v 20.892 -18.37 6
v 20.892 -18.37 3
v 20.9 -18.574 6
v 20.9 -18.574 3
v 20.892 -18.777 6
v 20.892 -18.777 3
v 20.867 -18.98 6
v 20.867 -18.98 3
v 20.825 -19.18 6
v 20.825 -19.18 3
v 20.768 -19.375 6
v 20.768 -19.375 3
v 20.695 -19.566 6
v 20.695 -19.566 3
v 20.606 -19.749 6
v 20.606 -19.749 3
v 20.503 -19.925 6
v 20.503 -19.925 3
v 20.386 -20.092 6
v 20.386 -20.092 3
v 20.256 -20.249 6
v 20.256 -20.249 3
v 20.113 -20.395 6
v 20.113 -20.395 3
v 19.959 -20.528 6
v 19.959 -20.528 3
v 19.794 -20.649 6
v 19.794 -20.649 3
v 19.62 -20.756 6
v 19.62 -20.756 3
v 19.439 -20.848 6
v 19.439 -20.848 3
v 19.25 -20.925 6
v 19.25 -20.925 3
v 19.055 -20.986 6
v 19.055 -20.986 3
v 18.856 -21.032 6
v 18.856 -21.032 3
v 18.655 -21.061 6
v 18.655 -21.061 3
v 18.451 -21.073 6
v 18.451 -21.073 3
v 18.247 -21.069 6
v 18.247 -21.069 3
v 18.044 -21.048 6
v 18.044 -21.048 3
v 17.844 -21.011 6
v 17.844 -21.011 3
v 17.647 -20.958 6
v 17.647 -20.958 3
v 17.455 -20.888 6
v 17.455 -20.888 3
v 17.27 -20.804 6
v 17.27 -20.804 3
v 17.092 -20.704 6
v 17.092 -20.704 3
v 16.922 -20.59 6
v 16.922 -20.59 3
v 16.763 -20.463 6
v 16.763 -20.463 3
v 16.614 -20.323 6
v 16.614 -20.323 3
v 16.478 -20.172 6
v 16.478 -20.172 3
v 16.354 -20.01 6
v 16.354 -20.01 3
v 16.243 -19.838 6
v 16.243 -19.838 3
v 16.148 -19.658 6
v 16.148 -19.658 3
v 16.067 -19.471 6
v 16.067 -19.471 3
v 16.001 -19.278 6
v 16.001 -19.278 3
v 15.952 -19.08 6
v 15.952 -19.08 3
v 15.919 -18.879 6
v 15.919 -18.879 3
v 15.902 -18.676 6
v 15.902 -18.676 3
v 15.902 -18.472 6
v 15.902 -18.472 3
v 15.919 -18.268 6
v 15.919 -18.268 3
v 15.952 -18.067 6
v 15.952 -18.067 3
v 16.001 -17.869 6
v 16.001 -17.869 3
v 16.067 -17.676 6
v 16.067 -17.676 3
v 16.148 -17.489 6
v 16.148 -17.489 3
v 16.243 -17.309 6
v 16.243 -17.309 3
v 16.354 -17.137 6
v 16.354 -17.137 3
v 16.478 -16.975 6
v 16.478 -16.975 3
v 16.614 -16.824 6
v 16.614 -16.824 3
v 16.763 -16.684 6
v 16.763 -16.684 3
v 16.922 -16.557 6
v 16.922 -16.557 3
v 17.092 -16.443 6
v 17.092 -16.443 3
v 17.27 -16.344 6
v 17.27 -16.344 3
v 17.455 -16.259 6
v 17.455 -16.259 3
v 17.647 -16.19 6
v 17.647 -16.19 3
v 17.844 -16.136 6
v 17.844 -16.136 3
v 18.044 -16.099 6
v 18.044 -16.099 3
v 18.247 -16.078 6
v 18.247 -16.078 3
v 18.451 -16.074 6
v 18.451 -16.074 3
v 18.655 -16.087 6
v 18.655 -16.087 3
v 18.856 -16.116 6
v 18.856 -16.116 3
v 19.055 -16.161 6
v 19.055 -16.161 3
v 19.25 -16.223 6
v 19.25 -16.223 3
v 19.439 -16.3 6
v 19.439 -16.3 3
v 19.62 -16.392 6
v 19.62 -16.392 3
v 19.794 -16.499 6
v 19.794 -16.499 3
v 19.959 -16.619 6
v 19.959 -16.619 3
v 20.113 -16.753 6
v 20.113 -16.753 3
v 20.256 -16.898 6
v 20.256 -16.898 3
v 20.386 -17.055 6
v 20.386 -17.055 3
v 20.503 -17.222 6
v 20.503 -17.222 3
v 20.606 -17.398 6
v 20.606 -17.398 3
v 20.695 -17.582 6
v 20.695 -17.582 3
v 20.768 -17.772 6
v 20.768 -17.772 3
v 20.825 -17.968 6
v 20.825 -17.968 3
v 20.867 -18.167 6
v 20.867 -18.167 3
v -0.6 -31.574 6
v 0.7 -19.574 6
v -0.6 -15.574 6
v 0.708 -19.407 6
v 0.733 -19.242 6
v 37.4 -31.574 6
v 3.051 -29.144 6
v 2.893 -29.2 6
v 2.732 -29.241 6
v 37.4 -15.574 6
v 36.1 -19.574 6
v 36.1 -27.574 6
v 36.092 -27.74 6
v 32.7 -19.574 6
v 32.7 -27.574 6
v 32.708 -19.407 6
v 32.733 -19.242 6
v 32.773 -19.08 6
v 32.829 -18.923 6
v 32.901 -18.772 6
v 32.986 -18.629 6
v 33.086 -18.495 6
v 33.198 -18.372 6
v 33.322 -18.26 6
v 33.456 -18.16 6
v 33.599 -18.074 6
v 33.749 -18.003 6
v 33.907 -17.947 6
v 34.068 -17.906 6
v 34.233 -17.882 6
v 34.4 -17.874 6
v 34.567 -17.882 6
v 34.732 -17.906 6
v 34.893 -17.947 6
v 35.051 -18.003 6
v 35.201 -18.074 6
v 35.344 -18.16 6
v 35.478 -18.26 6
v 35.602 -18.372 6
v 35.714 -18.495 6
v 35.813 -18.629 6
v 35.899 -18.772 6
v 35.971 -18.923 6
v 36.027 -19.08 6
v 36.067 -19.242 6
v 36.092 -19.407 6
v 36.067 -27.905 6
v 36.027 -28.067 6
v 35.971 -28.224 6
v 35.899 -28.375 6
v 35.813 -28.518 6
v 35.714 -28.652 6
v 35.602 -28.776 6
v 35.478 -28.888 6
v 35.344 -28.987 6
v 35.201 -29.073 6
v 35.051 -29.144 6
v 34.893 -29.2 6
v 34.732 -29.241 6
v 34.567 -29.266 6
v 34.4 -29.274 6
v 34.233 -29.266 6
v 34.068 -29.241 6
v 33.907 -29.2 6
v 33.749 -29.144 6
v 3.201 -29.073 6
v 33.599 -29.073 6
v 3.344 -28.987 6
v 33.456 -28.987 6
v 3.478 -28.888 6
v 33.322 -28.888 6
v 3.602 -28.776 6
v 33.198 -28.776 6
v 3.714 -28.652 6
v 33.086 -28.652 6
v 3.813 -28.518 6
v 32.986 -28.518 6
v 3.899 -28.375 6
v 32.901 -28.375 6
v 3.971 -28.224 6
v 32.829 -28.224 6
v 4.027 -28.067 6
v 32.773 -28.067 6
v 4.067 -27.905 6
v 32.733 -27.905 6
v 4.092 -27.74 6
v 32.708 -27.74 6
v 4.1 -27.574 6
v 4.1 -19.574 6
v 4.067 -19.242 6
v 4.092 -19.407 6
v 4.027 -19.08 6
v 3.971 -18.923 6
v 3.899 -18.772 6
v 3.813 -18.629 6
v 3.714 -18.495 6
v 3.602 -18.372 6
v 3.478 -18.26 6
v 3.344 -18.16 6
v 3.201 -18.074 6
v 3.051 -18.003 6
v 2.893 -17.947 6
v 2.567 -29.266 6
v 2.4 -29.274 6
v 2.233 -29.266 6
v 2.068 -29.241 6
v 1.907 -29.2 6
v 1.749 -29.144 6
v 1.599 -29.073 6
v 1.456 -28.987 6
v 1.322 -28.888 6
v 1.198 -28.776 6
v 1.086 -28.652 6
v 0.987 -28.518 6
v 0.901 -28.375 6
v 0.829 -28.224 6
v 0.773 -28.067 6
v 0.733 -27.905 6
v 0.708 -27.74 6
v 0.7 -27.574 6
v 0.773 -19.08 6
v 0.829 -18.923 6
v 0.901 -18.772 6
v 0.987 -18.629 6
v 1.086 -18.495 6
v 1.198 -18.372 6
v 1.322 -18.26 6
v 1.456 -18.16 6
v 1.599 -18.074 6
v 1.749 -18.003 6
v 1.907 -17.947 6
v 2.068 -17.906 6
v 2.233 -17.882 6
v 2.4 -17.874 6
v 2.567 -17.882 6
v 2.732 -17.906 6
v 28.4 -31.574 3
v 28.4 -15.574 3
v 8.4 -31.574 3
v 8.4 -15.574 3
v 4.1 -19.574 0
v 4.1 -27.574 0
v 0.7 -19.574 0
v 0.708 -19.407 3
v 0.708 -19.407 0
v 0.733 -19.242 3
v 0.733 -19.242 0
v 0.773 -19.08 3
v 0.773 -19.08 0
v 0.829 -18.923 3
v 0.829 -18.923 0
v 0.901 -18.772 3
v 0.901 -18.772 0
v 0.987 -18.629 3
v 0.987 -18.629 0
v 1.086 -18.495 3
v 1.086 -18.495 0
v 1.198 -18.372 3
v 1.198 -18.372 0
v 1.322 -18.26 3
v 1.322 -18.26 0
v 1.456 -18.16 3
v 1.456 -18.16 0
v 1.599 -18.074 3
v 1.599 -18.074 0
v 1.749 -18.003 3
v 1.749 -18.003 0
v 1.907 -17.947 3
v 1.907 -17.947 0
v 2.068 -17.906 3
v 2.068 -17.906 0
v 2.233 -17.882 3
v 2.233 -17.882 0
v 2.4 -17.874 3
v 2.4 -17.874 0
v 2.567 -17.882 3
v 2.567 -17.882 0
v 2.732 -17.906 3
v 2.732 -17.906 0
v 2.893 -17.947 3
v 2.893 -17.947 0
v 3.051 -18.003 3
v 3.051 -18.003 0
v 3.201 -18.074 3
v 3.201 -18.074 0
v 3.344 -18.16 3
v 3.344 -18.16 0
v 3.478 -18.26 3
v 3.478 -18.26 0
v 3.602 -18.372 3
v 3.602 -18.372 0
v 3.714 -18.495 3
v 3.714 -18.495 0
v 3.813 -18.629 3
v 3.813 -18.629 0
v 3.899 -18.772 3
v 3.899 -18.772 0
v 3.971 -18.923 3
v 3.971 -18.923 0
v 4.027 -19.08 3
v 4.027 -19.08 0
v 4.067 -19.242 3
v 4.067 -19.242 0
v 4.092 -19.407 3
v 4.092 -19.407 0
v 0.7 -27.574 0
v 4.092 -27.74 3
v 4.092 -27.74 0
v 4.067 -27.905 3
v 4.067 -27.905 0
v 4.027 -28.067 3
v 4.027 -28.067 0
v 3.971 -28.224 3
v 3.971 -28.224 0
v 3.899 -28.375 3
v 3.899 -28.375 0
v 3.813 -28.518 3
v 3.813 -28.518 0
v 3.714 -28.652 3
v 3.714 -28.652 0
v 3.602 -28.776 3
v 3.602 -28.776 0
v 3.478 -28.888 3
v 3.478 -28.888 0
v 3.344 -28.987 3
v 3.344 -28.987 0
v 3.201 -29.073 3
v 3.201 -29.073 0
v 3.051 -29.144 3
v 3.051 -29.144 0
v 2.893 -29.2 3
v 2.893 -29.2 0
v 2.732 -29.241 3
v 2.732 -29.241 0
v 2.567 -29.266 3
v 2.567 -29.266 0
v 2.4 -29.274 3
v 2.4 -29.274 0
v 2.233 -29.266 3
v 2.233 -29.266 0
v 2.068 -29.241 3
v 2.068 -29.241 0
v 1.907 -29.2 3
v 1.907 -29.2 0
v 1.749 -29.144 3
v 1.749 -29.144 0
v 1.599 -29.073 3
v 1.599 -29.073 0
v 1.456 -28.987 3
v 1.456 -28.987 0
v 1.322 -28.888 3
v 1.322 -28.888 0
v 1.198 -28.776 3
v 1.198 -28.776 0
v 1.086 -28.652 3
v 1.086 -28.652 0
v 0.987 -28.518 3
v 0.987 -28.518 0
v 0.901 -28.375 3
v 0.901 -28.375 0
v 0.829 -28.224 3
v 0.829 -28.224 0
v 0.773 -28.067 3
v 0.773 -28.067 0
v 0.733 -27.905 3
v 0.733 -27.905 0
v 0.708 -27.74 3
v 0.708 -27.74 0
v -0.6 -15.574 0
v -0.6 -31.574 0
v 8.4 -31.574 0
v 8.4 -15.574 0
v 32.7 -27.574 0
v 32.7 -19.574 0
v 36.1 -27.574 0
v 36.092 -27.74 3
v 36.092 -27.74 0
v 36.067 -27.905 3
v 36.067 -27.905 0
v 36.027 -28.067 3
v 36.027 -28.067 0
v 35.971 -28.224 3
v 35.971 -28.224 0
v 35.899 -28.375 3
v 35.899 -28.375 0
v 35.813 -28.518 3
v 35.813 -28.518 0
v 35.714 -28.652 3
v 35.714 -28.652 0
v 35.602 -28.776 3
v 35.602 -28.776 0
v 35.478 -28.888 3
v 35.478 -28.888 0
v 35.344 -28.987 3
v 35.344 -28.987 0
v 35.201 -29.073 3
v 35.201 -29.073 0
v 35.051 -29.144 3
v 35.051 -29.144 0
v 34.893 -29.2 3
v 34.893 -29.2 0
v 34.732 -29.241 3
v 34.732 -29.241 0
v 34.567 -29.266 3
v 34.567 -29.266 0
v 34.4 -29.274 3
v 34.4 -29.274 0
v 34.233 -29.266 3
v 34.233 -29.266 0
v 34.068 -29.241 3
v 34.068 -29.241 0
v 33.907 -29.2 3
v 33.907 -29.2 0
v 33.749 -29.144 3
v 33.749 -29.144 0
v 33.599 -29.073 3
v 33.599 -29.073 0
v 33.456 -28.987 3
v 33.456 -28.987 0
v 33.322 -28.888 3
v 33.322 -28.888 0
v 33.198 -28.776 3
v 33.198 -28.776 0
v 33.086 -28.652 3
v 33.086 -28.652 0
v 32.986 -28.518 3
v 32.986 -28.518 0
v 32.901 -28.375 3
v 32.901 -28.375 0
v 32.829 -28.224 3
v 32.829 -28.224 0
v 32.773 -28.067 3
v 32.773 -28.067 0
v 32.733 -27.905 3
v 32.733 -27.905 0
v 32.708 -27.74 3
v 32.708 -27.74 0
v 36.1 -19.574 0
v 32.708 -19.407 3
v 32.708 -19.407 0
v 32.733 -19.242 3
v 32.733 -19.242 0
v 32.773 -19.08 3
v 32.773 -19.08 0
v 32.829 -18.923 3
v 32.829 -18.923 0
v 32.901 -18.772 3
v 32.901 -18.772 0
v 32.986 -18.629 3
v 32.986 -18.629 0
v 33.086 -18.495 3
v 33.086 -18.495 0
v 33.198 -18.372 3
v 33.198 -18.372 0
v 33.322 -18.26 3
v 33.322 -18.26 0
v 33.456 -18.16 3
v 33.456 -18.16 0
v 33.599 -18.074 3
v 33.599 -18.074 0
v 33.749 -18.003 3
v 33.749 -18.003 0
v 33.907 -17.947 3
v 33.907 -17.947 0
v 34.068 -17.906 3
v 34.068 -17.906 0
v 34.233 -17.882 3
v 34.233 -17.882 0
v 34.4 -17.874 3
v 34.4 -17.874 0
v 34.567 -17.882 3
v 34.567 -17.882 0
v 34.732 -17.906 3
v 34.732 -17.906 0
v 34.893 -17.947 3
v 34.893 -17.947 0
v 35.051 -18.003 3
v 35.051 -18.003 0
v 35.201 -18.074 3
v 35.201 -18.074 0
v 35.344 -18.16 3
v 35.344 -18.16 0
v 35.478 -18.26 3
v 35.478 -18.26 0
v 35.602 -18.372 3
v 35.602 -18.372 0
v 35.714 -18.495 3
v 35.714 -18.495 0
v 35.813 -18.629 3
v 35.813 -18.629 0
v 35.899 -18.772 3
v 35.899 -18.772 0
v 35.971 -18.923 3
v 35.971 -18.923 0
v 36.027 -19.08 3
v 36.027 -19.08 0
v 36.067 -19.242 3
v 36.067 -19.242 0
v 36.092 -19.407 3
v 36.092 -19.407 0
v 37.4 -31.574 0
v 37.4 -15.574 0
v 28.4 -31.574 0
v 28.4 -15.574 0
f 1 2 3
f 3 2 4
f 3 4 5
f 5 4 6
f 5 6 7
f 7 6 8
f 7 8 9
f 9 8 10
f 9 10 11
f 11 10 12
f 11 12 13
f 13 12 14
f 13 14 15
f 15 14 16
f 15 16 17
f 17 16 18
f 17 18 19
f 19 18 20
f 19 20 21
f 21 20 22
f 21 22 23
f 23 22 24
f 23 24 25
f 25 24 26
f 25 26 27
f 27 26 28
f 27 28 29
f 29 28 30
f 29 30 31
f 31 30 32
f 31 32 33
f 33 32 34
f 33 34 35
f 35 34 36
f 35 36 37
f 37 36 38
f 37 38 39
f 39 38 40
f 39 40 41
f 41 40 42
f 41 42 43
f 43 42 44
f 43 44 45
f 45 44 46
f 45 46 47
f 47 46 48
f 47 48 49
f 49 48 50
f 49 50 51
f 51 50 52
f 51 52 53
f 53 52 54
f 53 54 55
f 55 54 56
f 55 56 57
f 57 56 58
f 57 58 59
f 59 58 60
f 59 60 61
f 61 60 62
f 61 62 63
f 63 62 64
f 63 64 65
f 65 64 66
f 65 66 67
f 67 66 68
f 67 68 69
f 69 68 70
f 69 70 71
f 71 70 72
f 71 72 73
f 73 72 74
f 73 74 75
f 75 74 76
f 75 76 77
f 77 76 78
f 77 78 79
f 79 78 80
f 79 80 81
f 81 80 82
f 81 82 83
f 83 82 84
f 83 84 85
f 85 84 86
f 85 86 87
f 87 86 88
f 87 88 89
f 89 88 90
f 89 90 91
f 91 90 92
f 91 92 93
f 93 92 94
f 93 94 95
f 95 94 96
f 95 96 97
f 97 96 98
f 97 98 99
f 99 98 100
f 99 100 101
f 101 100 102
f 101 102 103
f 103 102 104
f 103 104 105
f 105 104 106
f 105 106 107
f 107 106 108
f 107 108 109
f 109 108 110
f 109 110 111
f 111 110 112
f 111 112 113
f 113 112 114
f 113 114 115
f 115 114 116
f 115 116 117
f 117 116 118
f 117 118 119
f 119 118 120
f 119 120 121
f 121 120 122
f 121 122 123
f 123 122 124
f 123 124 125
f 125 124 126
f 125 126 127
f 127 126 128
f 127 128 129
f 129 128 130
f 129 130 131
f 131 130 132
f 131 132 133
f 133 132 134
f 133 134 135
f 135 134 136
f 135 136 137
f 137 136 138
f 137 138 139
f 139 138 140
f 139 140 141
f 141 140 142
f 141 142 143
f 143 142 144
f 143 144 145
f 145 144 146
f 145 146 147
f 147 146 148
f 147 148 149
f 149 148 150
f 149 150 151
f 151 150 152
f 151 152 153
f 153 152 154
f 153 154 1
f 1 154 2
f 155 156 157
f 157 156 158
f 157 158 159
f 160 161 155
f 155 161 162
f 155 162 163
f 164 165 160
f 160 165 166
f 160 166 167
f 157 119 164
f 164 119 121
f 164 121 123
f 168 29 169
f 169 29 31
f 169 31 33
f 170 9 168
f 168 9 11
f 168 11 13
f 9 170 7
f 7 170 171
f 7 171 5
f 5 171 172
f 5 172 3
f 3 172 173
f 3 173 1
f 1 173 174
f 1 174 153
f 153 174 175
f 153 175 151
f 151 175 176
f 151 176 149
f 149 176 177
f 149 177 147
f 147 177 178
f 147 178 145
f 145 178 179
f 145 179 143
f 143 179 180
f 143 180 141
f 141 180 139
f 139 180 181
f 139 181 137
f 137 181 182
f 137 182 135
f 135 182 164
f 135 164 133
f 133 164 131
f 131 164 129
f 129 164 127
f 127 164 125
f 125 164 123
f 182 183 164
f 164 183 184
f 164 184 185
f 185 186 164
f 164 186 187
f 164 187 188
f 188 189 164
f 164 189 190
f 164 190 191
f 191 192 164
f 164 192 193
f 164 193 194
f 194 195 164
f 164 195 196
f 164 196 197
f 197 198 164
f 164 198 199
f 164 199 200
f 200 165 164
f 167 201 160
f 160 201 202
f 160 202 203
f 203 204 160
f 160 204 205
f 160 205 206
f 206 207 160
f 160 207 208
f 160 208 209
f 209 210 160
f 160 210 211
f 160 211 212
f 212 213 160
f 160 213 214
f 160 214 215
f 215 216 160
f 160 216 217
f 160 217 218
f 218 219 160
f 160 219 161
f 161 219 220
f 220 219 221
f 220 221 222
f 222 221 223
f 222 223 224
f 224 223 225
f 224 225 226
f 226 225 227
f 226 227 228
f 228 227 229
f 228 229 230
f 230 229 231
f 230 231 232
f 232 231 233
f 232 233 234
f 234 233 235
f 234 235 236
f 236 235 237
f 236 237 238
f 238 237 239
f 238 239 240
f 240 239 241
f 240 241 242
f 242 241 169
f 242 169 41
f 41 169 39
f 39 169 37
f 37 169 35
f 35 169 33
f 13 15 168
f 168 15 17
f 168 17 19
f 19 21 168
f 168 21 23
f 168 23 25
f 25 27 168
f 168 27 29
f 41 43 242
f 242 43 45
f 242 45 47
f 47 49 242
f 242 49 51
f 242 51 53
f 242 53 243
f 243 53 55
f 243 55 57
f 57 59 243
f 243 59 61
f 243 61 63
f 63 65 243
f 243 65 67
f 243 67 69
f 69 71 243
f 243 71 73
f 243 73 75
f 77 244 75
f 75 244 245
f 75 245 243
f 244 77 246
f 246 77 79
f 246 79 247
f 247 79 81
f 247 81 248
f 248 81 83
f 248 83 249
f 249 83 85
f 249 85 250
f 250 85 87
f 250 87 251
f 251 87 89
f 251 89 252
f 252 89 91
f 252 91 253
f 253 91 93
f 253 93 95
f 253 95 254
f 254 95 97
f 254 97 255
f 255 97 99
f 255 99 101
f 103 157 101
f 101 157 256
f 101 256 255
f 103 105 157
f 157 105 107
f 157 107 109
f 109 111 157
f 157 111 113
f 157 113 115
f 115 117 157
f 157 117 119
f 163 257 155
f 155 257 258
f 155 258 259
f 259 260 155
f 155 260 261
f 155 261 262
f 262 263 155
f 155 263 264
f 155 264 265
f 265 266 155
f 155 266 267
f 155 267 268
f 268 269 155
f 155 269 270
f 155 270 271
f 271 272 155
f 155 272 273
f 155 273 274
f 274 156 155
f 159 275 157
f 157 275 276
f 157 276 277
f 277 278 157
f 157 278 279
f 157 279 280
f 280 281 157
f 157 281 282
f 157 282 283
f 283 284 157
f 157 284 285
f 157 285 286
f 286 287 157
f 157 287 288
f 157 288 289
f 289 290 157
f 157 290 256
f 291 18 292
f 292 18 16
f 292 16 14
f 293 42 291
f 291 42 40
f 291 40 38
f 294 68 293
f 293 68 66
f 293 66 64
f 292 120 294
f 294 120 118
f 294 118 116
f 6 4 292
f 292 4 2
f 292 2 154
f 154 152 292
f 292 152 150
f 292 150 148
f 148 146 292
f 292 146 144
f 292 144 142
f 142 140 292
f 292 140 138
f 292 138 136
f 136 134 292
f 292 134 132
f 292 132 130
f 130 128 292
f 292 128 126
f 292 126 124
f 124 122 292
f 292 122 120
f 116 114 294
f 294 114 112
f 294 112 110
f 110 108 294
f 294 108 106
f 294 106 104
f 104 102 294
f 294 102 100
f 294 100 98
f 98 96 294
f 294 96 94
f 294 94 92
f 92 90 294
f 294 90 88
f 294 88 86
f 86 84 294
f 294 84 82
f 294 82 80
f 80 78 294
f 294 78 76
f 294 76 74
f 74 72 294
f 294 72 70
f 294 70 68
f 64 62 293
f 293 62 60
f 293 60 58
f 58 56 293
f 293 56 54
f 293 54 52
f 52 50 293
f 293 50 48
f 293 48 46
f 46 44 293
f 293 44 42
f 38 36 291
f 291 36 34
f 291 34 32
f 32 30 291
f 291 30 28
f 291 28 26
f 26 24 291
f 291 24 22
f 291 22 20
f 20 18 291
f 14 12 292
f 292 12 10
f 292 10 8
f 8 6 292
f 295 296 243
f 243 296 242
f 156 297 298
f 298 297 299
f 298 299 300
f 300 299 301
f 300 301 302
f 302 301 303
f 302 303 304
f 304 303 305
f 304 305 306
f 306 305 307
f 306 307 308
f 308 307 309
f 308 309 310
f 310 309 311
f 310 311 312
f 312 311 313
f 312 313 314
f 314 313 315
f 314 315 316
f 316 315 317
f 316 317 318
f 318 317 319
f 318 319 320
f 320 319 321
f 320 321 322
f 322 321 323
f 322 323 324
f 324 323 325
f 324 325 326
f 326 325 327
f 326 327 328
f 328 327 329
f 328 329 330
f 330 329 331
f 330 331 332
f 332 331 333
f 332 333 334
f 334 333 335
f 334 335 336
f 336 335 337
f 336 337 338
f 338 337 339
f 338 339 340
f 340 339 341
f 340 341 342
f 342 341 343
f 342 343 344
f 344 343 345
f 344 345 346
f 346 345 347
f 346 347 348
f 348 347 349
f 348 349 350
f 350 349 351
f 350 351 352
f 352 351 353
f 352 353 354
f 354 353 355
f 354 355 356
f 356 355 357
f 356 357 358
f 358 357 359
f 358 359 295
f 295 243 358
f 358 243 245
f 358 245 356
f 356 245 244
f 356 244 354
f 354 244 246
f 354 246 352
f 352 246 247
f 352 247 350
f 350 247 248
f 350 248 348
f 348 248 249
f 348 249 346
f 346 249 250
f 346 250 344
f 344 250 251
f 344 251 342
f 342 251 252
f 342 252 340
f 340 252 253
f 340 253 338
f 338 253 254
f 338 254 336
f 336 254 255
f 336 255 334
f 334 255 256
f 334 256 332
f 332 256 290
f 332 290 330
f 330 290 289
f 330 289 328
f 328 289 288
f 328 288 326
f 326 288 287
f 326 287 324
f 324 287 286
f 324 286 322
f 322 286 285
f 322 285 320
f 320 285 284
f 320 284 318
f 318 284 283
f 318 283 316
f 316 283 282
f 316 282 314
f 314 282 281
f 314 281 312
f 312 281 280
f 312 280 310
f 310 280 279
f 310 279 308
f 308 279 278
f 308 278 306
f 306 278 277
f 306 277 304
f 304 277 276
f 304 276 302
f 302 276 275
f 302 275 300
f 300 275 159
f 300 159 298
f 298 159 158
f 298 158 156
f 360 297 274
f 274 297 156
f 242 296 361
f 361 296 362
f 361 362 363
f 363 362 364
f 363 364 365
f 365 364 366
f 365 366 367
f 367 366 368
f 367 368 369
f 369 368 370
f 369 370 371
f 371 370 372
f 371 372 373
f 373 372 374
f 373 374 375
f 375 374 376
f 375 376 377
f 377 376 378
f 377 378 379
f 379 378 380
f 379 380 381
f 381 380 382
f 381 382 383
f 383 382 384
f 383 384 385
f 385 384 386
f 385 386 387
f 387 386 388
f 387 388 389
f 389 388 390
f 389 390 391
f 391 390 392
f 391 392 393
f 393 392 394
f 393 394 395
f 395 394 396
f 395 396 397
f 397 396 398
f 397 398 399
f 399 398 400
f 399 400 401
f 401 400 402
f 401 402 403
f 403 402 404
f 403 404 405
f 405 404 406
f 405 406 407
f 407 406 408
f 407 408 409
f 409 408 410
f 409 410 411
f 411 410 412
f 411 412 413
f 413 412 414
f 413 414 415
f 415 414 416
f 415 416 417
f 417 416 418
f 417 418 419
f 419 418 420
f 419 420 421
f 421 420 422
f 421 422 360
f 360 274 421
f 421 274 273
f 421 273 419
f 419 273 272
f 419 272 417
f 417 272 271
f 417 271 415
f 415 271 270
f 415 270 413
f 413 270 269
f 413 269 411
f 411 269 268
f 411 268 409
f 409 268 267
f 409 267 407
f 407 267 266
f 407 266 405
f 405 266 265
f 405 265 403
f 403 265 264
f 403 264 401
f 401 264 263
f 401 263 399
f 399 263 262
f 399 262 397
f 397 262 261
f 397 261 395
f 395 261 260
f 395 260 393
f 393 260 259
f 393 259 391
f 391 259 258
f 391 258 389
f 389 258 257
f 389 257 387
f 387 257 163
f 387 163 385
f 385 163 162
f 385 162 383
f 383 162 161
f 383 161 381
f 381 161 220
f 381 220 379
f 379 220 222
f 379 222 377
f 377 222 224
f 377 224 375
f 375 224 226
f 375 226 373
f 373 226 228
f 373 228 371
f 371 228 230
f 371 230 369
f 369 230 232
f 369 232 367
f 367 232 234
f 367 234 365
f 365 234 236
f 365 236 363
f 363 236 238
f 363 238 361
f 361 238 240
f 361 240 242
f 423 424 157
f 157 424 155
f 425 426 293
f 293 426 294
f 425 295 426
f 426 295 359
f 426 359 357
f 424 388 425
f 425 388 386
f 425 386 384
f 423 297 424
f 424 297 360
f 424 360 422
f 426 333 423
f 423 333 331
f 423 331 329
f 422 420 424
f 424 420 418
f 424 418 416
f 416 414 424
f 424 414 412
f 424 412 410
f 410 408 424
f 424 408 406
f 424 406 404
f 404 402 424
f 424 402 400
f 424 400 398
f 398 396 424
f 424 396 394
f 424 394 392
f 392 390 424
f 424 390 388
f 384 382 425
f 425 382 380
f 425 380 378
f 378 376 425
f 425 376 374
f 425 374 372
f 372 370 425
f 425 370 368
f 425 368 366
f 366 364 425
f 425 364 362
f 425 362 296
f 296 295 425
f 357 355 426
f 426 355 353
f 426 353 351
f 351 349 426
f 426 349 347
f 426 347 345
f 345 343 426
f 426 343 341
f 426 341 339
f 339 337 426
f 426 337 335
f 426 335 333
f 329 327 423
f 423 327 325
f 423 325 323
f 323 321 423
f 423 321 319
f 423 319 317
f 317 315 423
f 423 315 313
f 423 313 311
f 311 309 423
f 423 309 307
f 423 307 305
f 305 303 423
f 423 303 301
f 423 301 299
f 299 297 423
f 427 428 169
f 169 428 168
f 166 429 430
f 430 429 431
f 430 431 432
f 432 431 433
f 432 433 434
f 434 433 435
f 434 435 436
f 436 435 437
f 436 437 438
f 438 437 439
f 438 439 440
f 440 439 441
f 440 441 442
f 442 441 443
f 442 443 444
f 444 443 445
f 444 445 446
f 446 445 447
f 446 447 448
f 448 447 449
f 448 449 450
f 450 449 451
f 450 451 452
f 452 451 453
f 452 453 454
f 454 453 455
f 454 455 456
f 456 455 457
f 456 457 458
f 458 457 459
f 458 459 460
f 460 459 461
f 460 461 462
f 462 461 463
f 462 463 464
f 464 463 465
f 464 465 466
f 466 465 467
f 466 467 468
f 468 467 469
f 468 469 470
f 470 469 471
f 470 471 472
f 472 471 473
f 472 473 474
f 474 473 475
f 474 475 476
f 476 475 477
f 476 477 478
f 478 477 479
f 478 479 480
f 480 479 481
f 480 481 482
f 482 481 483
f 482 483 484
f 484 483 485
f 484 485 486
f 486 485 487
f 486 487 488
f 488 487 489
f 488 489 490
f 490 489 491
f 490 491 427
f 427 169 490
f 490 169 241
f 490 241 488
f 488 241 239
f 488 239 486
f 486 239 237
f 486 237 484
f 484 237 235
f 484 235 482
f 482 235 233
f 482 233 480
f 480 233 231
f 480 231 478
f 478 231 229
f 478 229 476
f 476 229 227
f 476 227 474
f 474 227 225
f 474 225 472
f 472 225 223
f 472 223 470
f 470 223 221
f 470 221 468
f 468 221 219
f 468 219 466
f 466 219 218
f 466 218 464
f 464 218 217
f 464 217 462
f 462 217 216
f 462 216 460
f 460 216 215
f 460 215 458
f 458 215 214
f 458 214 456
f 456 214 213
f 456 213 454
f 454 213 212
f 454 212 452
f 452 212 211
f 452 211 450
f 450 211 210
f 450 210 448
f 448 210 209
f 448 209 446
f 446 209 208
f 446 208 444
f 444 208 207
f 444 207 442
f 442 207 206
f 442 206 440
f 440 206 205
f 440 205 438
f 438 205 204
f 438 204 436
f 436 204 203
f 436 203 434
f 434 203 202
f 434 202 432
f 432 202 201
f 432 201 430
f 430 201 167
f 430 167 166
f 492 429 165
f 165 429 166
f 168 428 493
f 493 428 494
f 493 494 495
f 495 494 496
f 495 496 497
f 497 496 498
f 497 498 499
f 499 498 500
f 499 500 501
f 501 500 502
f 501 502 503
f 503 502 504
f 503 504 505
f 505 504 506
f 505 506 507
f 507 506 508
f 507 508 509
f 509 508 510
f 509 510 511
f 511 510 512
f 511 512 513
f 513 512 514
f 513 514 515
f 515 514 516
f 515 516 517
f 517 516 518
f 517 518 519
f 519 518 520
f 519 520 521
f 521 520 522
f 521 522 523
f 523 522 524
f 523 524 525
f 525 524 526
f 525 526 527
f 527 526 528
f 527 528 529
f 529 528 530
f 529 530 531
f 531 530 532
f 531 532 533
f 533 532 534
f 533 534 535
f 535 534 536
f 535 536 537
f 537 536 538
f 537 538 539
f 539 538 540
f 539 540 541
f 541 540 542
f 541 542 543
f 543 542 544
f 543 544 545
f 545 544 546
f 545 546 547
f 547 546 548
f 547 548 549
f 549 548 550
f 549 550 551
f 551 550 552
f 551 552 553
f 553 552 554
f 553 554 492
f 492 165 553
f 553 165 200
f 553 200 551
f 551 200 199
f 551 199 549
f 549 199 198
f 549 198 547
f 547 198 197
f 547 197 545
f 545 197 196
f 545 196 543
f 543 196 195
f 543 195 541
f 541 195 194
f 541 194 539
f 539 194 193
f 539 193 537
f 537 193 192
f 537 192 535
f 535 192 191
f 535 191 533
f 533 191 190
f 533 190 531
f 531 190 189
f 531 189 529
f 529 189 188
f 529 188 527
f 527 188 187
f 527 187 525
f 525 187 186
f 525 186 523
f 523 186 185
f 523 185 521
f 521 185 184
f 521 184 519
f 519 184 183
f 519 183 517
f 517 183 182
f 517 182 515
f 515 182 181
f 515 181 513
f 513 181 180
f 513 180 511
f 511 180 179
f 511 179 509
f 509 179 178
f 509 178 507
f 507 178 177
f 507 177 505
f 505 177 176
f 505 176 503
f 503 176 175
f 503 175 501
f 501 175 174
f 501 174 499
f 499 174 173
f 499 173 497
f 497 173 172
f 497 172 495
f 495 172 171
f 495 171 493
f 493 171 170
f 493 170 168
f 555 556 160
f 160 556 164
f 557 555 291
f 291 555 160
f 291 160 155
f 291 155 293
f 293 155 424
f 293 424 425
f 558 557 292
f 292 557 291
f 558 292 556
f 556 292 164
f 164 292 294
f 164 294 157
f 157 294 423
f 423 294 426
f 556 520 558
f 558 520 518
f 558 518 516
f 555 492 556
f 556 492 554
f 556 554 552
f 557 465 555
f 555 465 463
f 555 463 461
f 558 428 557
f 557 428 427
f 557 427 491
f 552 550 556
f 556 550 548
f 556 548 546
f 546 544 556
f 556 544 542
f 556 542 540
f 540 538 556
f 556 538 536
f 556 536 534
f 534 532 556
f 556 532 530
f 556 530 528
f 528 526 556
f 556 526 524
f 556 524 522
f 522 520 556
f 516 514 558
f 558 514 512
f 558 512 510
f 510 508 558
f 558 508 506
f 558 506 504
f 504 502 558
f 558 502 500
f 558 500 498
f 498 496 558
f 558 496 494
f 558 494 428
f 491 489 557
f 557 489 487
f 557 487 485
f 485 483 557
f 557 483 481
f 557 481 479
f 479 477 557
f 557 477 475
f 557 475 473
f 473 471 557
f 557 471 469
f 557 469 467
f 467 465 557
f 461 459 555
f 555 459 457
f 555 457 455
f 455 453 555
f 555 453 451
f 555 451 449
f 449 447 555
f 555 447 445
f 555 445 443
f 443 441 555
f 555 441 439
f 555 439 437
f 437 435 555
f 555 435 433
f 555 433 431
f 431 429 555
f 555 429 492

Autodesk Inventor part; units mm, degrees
ref_plane "YZ Plane" through (0, 0, 0) normal (1, 0, 0) x (0, 1, 0)
ref_plane "XZ Plane" through (0, 0, 0) normal (0, 1, 0) x (-1, 0, 0)
ref_plane "XY Plane" through (0, 0, 0) normal (0, 0, 1) x (1, 0, 0)
ref_plane "Work Plane1" through (0, 0, 0) normal (0, 0, 1) x (1, 0, 0)
sketch "Sketch1" plane through (0, 0, 0) normal (0, 0, 1) x (1, 0, 0)
  circle A0 centre (2.4, -23.5737) radius 1.4 projected
  circle A1 centre (34.4, -23.5737) radius 1.4 projected
  line L0 (2.4, -27.5737) -> (2.4, -19.5737) construction
  line L1 (4.1, -27.5737) -> (4.1, -19.5737)
  line L2 (0.7, -19.5737) -> (0.7, -27.5737)
  arc A2 (0.7, -27.5737) -> (4.1, -27.5737) centre (2.4, -27.5737) ccw
  arc A3 (4.1, -19.5737) -> (0.7, -19.5737) centre (2.4, -19.5737) ccw
  line L3 (34.4, -19.5737) -> (34.4, -27.5737) construction
  line L4 (32.7, -19.5737) -> (32.7, -27.5737)
  line L5 (36.1, -27.5737) -> (36.1, -19.5737)
  arc A4 (36.1, -19.5737) -> (32.7, -19.5737) centre (34.4, -19.5737) ccw
  arc A5 (32.7, -27.5737) -> (36.1, -27.5737) centre (34.4, -27.5737) ccw
  line L6 (-0.6, -31.5737) -> (8.4, -31.5737)
  line L7 (8.4, -31.5737) -> (8.4, -15.5737)
  line L8 (8.4, -15.5737) -> (-0.6, -15.5737)
  line L9 (-0.6, -15.5737) -> (-0.6, -31.5737)
  line L10 (37.4, -15.5737) -> (28.4, -15.5737)
  line L11 (28.4, -15.5737) -> (28.4, -31.5737)
  line L12 (28.4, -31.5737) -> (37.4, -31.5737)
  line L13 (37.4, -31.5737) -> (37.4, -15.5737)
  line L14 (8.4, -7.25) -> (8.4, -25.25)
  line L15 (28.4, -7.25) -> (28.4, -25.25)
  point P0 (0, 0)
  dimension "d0" = 4
  dimension "d1" = 3.4
  dimension "d2" = 3.4
  dimension "d3" = 0
  dimension "d4" = 9
  dimension "d5" = 9
  dimension "d6" = 0
  dimension "d7" = 0
  dimension "d8" = 4
  dimension "d9" = 4
extrude "Extrusion1" add sketch "Sketch1" along normal blind 3 contours L9 L8 L7 L6 | L13 L12 L11 L10
sketch "Sketch2" plane through (0, 0, 3) normal (0, 0, 1) x (1, 0, 0)
  line L0 (8.4, -31.5737) -> (8.4, -15.5737) projected
  line L1 (8.4, -15.5737) -> (-0.6, -15.5737) projected
  line L2 (-0.6, -15.5737) -> (-0.6, -31.5737) projected
  line L3 (-0.6, -31.5737) -> (8.4, -31.5737) projected
  arc A0 (0.7, -27.5737) -> (4.1, -27.5737) centre (2.4, -27.5737) ccw projected
  line L4 (0.7, -27.5737) -> (0.7, -19.5737) projected
  arc A1 (4.1, -19.5737) -> (0.7, -19.5737) centre (2.4, -19.5737) ccw projected
  line L5 (4.1, -19.5737) -> (4.1, -27.5737) projected
  line L6 (37.4, -15.5737) -> (28.4, -15.5737) projected
  line L7 (28.4, -15.5737) -> (28.4, -31.5737) projected
  line L8 (28.4, -31.5737) -> (37.4, -31.5737) projected
  line L9 (37.4, -31.5737) -> (37.4, -15.5737) projected
  arc A2 (36.1, -19.5737) -> (32.7, -19.5737) centre (34.4, -19.5737) ccw projected
  line L10 (36.1, -19.5737) -> (36.1, -27.5737) projected
  arc A3 (32.7, -27.5737) -> (36.1, -27.5737) centre (34.4, -27.5737) ccw projected
  line L11 (32.7, -27.5737) -> (32.7, -19.5737) projected
  line L12 (12.4, 1.5154) -> (12.4, -15.3846)
  line L13 (24.4, 1.5154) -> (24.4, -15.3846)
  circle A4 centre (18.4, -18.5737) radius 2.5
  line L14 (8.4, -15.5737) -> (28.4, -15.5737)
  line L15 (28.4, -31.5737) -> (8.4, -31.5737)
  point P0 (0, 0)
  dimension "d12" = 5
  dimension "d13" = 6
  dimension "d14" = 3
extrude "Extrusion2" add sketch "Sketch2" along normal blind 3
properties part number "10_LED_cylnderlensmount"
